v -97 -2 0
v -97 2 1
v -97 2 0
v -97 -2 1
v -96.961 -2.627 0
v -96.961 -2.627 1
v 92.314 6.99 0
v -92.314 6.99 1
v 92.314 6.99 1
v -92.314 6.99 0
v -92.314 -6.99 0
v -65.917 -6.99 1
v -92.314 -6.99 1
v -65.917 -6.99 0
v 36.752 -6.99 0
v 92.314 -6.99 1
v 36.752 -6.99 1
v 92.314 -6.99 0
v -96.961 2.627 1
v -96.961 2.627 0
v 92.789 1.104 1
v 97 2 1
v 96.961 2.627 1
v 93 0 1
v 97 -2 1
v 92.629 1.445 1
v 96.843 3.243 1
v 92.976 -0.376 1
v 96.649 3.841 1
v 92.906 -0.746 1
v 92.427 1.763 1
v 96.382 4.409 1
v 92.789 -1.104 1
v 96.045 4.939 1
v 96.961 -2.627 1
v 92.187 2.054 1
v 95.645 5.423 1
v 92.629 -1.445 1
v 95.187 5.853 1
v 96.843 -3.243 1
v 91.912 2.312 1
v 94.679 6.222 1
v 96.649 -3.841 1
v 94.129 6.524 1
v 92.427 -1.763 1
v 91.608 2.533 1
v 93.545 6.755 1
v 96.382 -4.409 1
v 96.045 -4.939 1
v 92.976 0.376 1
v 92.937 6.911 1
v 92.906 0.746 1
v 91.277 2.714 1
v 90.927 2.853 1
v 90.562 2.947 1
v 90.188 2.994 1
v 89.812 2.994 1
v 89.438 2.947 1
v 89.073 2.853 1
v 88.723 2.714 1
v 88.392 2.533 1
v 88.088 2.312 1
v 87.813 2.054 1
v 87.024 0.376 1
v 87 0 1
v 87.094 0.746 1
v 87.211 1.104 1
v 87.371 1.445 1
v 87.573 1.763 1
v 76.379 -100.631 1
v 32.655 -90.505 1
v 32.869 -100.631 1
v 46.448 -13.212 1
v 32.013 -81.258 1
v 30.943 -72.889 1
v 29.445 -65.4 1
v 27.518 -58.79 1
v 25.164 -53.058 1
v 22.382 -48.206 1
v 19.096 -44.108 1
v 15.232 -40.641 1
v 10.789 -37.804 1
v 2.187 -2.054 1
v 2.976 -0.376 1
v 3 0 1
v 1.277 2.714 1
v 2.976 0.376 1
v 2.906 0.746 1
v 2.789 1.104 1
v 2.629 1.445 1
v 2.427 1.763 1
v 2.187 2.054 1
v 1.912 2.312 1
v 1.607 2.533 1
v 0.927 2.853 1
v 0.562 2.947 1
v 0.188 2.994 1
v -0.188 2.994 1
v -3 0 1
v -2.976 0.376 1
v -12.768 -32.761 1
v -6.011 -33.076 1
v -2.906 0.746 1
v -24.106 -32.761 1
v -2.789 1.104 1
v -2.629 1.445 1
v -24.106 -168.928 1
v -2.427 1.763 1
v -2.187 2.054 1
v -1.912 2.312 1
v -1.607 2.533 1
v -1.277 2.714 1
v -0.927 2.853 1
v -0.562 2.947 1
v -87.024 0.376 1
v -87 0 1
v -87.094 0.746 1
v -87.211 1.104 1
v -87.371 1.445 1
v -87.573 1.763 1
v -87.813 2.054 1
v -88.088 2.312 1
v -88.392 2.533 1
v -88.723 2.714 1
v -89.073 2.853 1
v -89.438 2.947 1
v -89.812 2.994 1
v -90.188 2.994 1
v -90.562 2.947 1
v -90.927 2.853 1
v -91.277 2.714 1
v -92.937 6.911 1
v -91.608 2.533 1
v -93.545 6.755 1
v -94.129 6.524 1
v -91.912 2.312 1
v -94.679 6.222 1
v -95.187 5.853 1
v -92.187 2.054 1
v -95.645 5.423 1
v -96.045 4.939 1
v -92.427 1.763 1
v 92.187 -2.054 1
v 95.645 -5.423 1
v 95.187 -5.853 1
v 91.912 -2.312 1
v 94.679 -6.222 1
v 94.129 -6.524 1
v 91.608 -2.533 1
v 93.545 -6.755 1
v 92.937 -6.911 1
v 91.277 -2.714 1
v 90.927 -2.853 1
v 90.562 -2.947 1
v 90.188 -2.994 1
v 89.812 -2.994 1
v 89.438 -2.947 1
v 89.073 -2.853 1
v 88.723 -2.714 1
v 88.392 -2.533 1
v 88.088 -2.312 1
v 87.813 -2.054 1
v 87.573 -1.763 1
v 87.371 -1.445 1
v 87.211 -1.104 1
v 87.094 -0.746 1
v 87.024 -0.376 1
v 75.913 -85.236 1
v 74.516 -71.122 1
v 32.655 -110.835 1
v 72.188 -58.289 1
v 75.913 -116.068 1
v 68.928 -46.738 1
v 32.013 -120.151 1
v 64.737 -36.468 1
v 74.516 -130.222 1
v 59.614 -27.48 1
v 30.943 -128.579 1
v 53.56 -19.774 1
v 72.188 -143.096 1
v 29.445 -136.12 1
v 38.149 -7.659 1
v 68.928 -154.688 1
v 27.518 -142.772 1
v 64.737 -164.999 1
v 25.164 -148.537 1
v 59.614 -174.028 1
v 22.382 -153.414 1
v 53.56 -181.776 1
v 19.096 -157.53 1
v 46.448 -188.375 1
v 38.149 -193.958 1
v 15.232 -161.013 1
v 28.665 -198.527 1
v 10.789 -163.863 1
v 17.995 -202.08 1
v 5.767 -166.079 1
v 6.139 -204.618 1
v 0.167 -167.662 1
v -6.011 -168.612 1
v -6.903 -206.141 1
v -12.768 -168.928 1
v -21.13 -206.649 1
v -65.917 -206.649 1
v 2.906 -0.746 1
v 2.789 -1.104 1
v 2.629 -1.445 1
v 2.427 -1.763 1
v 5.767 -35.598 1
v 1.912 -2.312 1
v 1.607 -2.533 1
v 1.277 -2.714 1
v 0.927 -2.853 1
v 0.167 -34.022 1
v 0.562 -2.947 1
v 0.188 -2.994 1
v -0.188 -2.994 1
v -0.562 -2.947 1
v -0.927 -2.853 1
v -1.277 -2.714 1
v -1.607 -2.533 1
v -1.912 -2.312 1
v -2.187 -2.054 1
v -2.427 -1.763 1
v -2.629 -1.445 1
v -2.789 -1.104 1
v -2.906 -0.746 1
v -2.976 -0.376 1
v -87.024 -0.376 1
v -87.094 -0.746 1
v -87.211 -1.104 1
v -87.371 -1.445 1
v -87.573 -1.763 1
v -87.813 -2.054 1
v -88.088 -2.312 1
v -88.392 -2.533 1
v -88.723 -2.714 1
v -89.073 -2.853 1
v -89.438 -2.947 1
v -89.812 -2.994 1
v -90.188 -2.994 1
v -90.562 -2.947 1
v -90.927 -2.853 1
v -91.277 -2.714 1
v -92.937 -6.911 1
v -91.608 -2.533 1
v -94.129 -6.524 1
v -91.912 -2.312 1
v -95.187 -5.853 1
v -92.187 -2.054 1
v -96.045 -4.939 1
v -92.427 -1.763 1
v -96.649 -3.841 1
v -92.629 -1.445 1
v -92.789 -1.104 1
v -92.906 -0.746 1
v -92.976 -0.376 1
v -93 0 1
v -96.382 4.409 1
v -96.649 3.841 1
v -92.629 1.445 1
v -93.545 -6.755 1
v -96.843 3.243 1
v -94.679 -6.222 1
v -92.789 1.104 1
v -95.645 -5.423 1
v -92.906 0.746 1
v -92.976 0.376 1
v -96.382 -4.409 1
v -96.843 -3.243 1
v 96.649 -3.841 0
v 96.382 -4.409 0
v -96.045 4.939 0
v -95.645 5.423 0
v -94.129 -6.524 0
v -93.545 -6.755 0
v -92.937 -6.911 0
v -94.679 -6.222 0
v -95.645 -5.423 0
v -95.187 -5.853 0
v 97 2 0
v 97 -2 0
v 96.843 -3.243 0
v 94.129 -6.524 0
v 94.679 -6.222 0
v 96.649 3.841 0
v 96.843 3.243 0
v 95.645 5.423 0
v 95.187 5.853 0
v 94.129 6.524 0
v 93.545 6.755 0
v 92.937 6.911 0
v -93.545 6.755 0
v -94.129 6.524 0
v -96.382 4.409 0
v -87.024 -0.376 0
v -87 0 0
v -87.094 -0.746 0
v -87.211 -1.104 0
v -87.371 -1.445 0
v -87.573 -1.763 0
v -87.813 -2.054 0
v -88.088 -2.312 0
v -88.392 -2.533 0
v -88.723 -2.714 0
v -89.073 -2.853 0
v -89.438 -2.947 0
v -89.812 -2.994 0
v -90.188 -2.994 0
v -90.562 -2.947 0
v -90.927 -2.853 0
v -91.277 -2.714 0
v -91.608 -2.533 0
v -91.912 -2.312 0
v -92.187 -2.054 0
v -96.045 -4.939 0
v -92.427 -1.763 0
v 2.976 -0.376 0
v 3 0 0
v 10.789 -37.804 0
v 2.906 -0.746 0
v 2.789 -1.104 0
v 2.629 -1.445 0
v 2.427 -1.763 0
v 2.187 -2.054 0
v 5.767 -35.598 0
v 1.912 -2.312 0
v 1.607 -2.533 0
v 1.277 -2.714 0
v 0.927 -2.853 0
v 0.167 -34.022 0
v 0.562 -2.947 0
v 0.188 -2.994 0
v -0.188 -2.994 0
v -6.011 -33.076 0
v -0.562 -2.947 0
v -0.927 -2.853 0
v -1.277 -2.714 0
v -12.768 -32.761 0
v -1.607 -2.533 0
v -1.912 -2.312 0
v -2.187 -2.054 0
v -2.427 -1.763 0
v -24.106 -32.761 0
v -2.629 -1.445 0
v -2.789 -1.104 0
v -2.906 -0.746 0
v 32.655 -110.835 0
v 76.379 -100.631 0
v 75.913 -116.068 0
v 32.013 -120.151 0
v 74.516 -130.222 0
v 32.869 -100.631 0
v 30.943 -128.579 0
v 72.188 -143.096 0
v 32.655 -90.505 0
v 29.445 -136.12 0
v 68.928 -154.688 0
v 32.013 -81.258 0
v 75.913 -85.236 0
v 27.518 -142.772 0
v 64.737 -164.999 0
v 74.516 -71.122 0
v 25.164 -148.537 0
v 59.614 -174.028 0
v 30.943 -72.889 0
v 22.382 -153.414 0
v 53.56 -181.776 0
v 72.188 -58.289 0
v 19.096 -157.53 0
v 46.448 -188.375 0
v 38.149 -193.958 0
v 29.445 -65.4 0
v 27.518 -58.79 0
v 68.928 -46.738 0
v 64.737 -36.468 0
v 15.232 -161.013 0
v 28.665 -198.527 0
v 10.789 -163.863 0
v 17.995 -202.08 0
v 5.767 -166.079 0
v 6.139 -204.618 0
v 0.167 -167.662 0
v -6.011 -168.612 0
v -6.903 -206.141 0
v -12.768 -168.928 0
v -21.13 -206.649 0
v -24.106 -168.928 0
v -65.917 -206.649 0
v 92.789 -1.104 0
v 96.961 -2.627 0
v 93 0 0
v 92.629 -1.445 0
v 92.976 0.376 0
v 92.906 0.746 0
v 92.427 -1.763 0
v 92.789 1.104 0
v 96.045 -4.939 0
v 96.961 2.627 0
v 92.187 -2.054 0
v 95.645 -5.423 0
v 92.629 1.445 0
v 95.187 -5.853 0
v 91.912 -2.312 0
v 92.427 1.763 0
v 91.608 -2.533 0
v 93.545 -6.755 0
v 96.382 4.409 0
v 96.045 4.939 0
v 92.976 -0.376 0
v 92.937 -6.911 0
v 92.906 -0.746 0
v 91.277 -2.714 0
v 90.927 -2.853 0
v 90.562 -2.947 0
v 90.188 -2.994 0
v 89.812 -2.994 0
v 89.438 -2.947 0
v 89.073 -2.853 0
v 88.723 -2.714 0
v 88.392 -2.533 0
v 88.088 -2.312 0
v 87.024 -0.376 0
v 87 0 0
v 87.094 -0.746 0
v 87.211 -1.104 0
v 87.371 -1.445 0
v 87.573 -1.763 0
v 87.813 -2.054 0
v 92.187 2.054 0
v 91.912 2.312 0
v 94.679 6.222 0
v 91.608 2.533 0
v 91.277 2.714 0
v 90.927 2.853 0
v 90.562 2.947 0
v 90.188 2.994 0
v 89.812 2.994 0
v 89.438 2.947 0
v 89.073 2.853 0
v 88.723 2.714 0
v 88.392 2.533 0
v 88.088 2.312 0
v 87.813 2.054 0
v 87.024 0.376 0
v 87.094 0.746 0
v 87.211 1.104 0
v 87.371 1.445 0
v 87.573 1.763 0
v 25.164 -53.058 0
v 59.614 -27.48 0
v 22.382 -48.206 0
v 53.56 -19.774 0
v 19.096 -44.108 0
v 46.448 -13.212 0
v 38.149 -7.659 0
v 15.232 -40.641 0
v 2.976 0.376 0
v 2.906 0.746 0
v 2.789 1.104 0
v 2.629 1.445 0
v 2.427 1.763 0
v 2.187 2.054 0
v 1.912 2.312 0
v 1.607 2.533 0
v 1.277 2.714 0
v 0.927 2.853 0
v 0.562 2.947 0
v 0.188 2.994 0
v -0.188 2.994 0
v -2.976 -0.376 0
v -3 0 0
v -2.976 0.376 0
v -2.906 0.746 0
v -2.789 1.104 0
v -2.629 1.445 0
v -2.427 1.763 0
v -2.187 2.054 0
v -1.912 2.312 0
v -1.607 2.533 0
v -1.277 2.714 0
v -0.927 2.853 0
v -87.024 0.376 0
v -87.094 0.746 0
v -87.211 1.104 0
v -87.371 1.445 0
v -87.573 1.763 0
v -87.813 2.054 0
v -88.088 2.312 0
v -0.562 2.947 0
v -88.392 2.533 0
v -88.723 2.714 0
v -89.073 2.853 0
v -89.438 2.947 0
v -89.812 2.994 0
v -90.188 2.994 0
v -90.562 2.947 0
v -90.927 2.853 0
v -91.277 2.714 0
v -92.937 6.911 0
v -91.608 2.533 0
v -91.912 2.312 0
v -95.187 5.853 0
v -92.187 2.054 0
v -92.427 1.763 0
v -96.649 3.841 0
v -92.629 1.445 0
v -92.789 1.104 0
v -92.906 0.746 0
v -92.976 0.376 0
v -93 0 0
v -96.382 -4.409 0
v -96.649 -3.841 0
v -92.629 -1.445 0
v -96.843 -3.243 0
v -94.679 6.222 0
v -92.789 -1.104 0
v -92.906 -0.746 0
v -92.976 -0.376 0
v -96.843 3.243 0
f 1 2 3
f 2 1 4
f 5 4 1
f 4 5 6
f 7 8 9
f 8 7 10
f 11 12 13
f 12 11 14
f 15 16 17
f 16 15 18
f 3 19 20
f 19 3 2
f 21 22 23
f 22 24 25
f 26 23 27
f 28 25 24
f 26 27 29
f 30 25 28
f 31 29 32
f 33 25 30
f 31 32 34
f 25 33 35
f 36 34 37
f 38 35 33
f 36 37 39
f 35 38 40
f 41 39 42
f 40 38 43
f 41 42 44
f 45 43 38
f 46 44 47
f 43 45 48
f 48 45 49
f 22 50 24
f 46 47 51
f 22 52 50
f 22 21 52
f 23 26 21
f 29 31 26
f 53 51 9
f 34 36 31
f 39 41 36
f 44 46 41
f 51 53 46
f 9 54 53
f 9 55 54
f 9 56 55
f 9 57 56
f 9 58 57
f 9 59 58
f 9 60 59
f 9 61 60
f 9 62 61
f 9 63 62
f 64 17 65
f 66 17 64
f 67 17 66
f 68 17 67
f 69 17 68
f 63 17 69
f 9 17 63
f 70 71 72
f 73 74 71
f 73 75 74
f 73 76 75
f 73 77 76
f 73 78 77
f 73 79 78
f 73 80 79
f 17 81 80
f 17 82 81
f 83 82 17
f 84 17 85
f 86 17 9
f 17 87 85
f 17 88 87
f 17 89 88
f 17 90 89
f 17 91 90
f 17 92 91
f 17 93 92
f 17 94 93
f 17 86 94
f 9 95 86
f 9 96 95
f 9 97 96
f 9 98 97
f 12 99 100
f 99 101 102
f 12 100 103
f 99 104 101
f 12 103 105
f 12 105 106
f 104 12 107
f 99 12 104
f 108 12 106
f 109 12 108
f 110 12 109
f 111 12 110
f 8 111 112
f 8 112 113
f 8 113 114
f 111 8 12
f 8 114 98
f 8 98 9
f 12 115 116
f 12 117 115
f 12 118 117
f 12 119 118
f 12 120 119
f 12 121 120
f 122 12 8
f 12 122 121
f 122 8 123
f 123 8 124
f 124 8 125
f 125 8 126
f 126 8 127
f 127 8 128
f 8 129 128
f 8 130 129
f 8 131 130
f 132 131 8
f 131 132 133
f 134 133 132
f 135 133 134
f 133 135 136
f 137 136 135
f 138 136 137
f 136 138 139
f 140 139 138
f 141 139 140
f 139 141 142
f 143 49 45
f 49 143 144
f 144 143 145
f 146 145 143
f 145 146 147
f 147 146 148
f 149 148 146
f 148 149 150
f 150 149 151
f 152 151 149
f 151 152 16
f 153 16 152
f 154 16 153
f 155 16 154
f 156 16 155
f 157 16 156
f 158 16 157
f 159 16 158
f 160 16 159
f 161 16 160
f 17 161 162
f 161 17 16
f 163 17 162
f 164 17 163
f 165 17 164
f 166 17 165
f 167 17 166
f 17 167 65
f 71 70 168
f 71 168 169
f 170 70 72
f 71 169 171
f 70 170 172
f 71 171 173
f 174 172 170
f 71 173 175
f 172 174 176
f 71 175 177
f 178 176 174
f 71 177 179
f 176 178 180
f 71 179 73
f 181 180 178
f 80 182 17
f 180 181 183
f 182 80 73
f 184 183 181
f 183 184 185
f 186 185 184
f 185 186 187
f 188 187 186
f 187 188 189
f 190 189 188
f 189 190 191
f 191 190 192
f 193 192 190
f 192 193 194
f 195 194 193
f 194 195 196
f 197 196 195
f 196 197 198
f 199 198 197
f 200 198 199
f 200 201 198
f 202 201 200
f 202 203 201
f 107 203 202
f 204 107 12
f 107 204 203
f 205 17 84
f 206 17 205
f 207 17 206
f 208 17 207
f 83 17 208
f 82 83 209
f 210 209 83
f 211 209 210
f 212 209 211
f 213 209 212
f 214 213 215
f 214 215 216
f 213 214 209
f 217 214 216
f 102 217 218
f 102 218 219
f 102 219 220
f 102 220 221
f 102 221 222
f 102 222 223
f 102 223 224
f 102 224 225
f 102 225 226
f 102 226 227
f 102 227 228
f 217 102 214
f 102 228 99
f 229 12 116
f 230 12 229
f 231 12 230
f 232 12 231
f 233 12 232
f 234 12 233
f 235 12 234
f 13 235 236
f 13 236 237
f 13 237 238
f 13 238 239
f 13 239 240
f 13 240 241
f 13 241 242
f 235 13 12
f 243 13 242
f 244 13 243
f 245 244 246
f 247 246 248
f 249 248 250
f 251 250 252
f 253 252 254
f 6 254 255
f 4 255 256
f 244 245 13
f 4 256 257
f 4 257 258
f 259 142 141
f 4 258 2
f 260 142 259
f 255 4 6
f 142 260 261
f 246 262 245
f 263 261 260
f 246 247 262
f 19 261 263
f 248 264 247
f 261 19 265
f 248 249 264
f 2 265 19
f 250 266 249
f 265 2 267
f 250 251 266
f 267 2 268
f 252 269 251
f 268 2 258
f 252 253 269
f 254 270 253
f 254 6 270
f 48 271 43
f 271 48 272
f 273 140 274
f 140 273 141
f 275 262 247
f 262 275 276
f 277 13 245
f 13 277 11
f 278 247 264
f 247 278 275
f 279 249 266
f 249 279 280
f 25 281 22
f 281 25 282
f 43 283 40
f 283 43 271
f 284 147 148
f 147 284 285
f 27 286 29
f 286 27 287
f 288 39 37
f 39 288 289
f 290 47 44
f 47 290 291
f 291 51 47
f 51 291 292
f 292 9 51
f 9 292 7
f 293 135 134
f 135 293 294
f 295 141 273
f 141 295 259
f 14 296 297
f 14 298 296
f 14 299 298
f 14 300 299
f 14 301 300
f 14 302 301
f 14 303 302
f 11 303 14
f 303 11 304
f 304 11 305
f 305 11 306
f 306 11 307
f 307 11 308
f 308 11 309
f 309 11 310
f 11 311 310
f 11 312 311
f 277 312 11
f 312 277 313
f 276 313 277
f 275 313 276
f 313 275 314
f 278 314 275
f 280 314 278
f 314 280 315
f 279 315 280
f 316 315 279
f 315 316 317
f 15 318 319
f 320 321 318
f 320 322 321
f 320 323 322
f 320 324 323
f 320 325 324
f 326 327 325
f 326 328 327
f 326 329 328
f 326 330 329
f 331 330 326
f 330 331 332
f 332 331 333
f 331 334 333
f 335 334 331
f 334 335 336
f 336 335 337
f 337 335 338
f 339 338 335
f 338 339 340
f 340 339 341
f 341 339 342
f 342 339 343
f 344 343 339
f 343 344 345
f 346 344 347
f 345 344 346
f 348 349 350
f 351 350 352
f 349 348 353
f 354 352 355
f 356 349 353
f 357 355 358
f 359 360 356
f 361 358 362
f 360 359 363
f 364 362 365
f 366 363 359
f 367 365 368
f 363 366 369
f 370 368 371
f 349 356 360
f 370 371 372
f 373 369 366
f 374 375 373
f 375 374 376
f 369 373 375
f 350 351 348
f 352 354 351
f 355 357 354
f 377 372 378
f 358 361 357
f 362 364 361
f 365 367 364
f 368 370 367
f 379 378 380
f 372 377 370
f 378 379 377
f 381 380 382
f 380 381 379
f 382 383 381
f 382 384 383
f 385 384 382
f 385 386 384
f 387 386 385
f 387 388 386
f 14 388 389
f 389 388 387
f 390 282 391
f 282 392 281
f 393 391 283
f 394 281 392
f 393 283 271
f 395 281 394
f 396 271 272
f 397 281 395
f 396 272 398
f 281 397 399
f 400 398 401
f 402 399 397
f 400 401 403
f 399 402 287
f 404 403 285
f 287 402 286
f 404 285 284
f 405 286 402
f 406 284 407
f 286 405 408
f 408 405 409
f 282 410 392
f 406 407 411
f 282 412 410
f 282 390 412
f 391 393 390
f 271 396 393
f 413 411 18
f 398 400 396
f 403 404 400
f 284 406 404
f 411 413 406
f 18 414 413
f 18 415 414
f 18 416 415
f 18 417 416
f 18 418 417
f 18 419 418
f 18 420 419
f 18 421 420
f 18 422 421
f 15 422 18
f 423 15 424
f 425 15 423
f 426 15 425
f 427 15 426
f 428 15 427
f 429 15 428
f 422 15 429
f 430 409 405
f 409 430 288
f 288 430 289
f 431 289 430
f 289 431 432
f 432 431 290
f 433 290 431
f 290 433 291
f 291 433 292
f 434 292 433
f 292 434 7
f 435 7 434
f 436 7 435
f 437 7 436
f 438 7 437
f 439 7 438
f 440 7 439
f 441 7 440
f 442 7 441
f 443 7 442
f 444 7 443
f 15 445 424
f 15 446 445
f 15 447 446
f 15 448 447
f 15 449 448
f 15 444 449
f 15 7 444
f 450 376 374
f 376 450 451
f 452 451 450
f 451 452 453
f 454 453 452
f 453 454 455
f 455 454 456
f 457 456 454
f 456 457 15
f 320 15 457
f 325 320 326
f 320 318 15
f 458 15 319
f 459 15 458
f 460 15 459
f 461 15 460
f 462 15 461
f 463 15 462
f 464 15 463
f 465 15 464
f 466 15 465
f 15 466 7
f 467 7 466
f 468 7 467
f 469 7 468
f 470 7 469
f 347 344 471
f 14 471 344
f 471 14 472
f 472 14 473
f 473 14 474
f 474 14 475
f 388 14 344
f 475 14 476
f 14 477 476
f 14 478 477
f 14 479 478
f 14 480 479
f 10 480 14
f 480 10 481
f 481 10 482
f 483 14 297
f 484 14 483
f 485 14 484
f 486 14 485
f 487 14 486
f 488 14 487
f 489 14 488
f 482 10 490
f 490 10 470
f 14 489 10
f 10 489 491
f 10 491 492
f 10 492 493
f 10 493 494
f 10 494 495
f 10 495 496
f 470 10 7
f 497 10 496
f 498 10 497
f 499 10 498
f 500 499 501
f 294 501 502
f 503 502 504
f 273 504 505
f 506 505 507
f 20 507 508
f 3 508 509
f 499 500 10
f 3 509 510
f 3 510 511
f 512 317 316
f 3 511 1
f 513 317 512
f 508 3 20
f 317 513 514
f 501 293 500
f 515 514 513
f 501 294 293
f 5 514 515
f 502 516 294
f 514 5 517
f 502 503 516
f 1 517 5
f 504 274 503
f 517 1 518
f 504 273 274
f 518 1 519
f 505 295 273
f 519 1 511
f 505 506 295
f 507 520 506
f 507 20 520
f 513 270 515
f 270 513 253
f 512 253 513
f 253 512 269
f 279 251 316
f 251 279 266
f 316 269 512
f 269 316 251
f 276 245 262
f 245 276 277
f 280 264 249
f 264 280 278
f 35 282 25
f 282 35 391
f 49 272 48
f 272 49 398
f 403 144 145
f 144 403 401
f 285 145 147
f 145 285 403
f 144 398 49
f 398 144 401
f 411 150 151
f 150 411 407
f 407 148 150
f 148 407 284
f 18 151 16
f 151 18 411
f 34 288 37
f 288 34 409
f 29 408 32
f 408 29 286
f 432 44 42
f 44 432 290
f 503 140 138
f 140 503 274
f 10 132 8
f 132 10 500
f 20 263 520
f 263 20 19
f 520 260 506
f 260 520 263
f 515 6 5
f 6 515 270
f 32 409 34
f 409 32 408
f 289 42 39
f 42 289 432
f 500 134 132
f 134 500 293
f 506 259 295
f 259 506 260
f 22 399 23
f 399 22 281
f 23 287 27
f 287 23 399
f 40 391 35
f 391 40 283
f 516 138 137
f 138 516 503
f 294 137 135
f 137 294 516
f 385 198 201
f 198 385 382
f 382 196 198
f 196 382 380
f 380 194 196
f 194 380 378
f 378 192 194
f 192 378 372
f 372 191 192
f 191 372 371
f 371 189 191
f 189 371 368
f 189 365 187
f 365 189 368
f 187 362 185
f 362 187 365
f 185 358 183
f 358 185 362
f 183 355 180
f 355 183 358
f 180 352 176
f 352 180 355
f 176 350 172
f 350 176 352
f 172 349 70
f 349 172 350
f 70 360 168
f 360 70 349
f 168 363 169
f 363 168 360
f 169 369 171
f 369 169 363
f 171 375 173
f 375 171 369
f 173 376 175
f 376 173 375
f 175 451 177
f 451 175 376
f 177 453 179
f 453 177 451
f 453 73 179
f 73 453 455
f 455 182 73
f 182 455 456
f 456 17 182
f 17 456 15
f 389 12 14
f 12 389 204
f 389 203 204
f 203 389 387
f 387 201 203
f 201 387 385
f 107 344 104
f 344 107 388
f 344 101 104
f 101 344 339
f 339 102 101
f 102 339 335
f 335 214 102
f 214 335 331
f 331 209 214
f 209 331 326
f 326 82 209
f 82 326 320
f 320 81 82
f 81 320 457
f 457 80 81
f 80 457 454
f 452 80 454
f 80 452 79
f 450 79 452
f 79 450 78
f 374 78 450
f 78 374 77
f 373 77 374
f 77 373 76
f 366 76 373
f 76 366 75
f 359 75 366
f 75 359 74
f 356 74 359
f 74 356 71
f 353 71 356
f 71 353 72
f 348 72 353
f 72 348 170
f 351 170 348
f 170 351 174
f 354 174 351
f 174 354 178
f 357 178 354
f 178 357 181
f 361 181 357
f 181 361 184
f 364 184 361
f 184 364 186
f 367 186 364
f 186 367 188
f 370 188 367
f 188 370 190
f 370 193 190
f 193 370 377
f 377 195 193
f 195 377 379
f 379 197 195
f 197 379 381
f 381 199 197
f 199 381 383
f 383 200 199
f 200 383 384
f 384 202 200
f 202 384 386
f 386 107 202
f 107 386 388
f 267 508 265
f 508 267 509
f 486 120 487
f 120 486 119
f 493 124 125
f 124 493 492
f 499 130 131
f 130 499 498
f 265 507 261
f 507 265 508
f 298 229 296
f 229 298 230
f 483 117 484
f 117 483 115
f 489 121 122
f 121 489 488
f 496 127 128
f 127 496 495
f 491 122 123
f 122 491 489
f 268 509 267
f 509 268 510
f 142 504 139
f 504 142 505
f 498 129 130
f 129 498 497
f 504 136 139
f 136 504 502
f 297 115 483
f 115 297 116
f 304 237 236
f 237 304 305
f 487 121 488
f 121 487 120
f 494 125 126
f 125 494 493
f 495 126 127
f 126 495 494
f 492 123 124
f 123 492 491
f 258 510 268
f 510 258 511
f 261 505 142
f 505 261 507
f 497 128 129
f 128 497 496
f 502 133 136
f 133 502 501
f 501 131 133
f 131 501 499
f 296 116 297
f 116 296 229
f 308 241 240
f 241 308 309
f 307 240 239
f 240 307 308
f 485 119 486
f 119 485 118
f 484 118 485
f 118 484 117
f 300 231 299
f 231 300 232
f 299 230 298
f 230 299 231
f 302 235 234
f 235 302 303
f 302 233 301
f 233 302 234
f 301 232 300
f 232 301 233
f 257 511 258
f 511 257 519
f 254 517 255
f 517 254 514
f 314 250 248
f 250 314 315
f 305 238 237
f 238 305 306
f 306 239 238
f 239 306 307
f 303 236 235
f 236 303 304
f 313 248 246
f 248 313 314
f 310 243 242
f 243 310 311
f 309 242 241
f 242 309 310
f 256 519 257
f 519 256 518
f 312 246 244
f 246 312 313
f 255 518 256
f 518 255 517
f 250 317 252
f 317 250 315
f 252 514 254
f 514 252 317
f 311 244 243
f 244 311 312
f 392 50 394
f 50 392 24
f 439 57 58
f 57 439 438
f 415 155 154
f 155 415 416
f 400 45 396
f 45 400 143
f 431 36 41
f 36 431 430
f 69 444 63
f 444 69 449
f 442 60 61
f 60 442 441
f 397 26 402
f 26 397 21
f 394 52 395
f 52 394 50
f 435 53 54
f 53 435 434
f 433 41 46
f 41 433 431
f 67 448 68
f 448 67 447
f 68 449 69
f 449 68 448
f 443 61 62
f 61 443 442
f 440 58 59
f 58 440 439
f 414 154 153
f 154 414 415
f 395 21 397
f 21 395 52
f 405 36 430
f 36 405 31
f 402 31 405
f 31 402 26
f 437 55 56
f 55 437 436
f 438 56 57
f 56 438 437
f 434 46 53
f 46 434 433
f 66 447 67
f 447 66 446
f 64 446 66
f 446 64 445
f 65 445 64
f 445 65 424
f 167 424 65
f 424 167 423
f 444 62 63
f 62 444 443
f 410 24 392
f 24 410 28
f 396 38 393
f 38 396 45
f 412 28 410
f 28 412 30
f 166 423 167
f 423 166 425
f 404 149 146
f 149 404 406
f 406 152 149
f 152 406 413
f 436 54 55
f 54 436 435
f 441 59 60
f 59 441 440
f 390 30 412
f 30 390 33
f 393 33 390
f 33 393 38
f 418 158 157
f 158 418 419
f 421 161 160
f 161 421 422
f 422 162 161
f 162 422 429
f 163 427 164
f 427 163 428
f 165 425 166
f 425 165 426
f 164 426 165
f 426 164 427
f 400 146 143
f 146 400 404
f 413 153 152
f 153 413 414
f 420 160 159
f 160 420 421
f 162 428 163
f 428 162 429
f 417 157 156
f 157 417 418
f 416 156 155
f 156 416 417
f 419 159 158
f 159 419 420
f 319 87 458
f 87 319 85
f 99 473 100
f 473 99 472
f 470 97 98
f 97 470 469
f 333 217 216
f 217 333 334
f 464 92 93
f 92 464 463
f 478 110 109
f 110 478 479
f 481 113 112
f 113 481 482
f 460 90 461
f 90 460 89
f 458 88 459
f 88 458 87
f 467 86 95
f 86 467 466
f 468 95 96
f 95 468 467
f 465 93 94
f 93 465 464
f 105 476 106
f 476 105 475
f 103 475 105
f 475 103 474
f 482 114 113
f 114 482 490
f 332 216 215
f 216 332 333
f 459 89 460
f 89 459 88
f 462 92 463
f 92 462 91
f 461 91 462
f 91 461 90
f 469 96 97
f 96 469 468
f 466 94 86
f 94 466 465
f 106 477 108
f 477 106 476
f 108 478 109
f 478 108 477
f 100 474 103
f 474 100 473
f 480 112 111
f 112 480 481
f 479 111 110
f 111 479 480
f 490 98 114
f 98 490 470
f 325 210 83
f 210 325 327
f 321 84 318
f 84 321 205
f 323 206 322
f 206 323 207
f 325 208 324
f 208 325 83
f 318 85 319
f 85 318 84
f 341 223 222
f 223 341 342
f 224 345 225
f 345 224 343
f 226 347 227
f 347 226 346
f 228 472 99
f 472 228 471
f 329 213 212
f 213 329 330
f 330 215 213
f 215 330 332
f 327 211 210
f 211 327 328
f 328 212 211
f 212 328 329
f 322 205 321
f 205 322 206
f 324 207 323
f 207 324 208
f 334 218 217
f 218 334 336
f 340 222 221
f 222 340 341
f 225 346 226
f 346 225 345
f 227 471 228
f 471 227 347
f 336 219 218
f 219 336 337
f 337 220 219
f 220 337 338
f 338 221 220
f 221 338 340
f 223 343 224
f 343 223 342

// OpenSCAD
$fn = 50;


difference() {
	union() {
		translate(v = [0, 0, 0]) {
			rotate(a = [0, 0, 0]) {
				hull() {
					translate(v = [-92.0000000000, 2.0000000000, 0]) {
						rotate(a = [0, 0, 0]) {
							translate(v = [0, 0, 0]) {
								rotate(a = [0, 0, 0]) {
									cylinder(h = 1, r = 5);
								}
							}
						}
					}
					translate(v = [92.0000000000, 2.0000000000, 0]) {
						rotate(a = [0, 0, 0]) {
							translate(v = [0, 0, 0]) {
								rotate(a = [0, 0, 0]) {
									cylinder(h = 1, r = 5);
								}
							}
						}
					}
					translate(v = [-92.0000000000, -2.0000000000, 0]) {
						rotate(a = [0, 0, 0]) {
							translate(v = [0, 0, 0]) {
								rotate(a = [0, 0, 0]) {
									cylinder(h = 1, r = 5);
								}
							}
						}
					}
					translate(v = [92.0000000000, -2.0000000000, 0]) {
						rotate(a = [0, 0, 0]) {
							translate(v = [0, 0, 0]) {
								rotate(a = [0, 0, 0]) {
									cylinder(h = 1, r = 5);
								}
							}
						}
					}
				}
			}
		}
		translate(v = [0, 0, 0]) {
			rotate(a = [0, 0, 0]) {
				linear_extrude(height = 1) {
					text(font = "DejaVu Sans Mono:style=Bold", halign = "center", size = 209.0000000000, text = "D", valign = "top");
				}
			}
		}
	}
	union() {
		translate(v = [-90.0000000000, 0.0000000000, -125.0000000000]) {
			rotate(a = [0, 0, 0]) {
				cylinder(h = 250, r = 3.0000000000);
			}
		}
		translate(v = [90.0000000000, 0.0000000000, -125.0000000000]) {
			rotate(a = [0, 0, 0]) {
				cylinder(h = 250, r = 3.0000000000);
			}
		}
		translate(v = [90.0000000000, 0.0000000000, -125.0000000000]) {
			rotate(a = [0, 0, 0]) {
				cylinder(h = 250, r = 3.0000000000);
			}
		}
		translate(v = [0, 0, -125.0000000000]) {
			rotate(a = [0, 0, 0]) {
				cylinder(h = 250, r = 3.0000000000);
			}
		}
	}
}
